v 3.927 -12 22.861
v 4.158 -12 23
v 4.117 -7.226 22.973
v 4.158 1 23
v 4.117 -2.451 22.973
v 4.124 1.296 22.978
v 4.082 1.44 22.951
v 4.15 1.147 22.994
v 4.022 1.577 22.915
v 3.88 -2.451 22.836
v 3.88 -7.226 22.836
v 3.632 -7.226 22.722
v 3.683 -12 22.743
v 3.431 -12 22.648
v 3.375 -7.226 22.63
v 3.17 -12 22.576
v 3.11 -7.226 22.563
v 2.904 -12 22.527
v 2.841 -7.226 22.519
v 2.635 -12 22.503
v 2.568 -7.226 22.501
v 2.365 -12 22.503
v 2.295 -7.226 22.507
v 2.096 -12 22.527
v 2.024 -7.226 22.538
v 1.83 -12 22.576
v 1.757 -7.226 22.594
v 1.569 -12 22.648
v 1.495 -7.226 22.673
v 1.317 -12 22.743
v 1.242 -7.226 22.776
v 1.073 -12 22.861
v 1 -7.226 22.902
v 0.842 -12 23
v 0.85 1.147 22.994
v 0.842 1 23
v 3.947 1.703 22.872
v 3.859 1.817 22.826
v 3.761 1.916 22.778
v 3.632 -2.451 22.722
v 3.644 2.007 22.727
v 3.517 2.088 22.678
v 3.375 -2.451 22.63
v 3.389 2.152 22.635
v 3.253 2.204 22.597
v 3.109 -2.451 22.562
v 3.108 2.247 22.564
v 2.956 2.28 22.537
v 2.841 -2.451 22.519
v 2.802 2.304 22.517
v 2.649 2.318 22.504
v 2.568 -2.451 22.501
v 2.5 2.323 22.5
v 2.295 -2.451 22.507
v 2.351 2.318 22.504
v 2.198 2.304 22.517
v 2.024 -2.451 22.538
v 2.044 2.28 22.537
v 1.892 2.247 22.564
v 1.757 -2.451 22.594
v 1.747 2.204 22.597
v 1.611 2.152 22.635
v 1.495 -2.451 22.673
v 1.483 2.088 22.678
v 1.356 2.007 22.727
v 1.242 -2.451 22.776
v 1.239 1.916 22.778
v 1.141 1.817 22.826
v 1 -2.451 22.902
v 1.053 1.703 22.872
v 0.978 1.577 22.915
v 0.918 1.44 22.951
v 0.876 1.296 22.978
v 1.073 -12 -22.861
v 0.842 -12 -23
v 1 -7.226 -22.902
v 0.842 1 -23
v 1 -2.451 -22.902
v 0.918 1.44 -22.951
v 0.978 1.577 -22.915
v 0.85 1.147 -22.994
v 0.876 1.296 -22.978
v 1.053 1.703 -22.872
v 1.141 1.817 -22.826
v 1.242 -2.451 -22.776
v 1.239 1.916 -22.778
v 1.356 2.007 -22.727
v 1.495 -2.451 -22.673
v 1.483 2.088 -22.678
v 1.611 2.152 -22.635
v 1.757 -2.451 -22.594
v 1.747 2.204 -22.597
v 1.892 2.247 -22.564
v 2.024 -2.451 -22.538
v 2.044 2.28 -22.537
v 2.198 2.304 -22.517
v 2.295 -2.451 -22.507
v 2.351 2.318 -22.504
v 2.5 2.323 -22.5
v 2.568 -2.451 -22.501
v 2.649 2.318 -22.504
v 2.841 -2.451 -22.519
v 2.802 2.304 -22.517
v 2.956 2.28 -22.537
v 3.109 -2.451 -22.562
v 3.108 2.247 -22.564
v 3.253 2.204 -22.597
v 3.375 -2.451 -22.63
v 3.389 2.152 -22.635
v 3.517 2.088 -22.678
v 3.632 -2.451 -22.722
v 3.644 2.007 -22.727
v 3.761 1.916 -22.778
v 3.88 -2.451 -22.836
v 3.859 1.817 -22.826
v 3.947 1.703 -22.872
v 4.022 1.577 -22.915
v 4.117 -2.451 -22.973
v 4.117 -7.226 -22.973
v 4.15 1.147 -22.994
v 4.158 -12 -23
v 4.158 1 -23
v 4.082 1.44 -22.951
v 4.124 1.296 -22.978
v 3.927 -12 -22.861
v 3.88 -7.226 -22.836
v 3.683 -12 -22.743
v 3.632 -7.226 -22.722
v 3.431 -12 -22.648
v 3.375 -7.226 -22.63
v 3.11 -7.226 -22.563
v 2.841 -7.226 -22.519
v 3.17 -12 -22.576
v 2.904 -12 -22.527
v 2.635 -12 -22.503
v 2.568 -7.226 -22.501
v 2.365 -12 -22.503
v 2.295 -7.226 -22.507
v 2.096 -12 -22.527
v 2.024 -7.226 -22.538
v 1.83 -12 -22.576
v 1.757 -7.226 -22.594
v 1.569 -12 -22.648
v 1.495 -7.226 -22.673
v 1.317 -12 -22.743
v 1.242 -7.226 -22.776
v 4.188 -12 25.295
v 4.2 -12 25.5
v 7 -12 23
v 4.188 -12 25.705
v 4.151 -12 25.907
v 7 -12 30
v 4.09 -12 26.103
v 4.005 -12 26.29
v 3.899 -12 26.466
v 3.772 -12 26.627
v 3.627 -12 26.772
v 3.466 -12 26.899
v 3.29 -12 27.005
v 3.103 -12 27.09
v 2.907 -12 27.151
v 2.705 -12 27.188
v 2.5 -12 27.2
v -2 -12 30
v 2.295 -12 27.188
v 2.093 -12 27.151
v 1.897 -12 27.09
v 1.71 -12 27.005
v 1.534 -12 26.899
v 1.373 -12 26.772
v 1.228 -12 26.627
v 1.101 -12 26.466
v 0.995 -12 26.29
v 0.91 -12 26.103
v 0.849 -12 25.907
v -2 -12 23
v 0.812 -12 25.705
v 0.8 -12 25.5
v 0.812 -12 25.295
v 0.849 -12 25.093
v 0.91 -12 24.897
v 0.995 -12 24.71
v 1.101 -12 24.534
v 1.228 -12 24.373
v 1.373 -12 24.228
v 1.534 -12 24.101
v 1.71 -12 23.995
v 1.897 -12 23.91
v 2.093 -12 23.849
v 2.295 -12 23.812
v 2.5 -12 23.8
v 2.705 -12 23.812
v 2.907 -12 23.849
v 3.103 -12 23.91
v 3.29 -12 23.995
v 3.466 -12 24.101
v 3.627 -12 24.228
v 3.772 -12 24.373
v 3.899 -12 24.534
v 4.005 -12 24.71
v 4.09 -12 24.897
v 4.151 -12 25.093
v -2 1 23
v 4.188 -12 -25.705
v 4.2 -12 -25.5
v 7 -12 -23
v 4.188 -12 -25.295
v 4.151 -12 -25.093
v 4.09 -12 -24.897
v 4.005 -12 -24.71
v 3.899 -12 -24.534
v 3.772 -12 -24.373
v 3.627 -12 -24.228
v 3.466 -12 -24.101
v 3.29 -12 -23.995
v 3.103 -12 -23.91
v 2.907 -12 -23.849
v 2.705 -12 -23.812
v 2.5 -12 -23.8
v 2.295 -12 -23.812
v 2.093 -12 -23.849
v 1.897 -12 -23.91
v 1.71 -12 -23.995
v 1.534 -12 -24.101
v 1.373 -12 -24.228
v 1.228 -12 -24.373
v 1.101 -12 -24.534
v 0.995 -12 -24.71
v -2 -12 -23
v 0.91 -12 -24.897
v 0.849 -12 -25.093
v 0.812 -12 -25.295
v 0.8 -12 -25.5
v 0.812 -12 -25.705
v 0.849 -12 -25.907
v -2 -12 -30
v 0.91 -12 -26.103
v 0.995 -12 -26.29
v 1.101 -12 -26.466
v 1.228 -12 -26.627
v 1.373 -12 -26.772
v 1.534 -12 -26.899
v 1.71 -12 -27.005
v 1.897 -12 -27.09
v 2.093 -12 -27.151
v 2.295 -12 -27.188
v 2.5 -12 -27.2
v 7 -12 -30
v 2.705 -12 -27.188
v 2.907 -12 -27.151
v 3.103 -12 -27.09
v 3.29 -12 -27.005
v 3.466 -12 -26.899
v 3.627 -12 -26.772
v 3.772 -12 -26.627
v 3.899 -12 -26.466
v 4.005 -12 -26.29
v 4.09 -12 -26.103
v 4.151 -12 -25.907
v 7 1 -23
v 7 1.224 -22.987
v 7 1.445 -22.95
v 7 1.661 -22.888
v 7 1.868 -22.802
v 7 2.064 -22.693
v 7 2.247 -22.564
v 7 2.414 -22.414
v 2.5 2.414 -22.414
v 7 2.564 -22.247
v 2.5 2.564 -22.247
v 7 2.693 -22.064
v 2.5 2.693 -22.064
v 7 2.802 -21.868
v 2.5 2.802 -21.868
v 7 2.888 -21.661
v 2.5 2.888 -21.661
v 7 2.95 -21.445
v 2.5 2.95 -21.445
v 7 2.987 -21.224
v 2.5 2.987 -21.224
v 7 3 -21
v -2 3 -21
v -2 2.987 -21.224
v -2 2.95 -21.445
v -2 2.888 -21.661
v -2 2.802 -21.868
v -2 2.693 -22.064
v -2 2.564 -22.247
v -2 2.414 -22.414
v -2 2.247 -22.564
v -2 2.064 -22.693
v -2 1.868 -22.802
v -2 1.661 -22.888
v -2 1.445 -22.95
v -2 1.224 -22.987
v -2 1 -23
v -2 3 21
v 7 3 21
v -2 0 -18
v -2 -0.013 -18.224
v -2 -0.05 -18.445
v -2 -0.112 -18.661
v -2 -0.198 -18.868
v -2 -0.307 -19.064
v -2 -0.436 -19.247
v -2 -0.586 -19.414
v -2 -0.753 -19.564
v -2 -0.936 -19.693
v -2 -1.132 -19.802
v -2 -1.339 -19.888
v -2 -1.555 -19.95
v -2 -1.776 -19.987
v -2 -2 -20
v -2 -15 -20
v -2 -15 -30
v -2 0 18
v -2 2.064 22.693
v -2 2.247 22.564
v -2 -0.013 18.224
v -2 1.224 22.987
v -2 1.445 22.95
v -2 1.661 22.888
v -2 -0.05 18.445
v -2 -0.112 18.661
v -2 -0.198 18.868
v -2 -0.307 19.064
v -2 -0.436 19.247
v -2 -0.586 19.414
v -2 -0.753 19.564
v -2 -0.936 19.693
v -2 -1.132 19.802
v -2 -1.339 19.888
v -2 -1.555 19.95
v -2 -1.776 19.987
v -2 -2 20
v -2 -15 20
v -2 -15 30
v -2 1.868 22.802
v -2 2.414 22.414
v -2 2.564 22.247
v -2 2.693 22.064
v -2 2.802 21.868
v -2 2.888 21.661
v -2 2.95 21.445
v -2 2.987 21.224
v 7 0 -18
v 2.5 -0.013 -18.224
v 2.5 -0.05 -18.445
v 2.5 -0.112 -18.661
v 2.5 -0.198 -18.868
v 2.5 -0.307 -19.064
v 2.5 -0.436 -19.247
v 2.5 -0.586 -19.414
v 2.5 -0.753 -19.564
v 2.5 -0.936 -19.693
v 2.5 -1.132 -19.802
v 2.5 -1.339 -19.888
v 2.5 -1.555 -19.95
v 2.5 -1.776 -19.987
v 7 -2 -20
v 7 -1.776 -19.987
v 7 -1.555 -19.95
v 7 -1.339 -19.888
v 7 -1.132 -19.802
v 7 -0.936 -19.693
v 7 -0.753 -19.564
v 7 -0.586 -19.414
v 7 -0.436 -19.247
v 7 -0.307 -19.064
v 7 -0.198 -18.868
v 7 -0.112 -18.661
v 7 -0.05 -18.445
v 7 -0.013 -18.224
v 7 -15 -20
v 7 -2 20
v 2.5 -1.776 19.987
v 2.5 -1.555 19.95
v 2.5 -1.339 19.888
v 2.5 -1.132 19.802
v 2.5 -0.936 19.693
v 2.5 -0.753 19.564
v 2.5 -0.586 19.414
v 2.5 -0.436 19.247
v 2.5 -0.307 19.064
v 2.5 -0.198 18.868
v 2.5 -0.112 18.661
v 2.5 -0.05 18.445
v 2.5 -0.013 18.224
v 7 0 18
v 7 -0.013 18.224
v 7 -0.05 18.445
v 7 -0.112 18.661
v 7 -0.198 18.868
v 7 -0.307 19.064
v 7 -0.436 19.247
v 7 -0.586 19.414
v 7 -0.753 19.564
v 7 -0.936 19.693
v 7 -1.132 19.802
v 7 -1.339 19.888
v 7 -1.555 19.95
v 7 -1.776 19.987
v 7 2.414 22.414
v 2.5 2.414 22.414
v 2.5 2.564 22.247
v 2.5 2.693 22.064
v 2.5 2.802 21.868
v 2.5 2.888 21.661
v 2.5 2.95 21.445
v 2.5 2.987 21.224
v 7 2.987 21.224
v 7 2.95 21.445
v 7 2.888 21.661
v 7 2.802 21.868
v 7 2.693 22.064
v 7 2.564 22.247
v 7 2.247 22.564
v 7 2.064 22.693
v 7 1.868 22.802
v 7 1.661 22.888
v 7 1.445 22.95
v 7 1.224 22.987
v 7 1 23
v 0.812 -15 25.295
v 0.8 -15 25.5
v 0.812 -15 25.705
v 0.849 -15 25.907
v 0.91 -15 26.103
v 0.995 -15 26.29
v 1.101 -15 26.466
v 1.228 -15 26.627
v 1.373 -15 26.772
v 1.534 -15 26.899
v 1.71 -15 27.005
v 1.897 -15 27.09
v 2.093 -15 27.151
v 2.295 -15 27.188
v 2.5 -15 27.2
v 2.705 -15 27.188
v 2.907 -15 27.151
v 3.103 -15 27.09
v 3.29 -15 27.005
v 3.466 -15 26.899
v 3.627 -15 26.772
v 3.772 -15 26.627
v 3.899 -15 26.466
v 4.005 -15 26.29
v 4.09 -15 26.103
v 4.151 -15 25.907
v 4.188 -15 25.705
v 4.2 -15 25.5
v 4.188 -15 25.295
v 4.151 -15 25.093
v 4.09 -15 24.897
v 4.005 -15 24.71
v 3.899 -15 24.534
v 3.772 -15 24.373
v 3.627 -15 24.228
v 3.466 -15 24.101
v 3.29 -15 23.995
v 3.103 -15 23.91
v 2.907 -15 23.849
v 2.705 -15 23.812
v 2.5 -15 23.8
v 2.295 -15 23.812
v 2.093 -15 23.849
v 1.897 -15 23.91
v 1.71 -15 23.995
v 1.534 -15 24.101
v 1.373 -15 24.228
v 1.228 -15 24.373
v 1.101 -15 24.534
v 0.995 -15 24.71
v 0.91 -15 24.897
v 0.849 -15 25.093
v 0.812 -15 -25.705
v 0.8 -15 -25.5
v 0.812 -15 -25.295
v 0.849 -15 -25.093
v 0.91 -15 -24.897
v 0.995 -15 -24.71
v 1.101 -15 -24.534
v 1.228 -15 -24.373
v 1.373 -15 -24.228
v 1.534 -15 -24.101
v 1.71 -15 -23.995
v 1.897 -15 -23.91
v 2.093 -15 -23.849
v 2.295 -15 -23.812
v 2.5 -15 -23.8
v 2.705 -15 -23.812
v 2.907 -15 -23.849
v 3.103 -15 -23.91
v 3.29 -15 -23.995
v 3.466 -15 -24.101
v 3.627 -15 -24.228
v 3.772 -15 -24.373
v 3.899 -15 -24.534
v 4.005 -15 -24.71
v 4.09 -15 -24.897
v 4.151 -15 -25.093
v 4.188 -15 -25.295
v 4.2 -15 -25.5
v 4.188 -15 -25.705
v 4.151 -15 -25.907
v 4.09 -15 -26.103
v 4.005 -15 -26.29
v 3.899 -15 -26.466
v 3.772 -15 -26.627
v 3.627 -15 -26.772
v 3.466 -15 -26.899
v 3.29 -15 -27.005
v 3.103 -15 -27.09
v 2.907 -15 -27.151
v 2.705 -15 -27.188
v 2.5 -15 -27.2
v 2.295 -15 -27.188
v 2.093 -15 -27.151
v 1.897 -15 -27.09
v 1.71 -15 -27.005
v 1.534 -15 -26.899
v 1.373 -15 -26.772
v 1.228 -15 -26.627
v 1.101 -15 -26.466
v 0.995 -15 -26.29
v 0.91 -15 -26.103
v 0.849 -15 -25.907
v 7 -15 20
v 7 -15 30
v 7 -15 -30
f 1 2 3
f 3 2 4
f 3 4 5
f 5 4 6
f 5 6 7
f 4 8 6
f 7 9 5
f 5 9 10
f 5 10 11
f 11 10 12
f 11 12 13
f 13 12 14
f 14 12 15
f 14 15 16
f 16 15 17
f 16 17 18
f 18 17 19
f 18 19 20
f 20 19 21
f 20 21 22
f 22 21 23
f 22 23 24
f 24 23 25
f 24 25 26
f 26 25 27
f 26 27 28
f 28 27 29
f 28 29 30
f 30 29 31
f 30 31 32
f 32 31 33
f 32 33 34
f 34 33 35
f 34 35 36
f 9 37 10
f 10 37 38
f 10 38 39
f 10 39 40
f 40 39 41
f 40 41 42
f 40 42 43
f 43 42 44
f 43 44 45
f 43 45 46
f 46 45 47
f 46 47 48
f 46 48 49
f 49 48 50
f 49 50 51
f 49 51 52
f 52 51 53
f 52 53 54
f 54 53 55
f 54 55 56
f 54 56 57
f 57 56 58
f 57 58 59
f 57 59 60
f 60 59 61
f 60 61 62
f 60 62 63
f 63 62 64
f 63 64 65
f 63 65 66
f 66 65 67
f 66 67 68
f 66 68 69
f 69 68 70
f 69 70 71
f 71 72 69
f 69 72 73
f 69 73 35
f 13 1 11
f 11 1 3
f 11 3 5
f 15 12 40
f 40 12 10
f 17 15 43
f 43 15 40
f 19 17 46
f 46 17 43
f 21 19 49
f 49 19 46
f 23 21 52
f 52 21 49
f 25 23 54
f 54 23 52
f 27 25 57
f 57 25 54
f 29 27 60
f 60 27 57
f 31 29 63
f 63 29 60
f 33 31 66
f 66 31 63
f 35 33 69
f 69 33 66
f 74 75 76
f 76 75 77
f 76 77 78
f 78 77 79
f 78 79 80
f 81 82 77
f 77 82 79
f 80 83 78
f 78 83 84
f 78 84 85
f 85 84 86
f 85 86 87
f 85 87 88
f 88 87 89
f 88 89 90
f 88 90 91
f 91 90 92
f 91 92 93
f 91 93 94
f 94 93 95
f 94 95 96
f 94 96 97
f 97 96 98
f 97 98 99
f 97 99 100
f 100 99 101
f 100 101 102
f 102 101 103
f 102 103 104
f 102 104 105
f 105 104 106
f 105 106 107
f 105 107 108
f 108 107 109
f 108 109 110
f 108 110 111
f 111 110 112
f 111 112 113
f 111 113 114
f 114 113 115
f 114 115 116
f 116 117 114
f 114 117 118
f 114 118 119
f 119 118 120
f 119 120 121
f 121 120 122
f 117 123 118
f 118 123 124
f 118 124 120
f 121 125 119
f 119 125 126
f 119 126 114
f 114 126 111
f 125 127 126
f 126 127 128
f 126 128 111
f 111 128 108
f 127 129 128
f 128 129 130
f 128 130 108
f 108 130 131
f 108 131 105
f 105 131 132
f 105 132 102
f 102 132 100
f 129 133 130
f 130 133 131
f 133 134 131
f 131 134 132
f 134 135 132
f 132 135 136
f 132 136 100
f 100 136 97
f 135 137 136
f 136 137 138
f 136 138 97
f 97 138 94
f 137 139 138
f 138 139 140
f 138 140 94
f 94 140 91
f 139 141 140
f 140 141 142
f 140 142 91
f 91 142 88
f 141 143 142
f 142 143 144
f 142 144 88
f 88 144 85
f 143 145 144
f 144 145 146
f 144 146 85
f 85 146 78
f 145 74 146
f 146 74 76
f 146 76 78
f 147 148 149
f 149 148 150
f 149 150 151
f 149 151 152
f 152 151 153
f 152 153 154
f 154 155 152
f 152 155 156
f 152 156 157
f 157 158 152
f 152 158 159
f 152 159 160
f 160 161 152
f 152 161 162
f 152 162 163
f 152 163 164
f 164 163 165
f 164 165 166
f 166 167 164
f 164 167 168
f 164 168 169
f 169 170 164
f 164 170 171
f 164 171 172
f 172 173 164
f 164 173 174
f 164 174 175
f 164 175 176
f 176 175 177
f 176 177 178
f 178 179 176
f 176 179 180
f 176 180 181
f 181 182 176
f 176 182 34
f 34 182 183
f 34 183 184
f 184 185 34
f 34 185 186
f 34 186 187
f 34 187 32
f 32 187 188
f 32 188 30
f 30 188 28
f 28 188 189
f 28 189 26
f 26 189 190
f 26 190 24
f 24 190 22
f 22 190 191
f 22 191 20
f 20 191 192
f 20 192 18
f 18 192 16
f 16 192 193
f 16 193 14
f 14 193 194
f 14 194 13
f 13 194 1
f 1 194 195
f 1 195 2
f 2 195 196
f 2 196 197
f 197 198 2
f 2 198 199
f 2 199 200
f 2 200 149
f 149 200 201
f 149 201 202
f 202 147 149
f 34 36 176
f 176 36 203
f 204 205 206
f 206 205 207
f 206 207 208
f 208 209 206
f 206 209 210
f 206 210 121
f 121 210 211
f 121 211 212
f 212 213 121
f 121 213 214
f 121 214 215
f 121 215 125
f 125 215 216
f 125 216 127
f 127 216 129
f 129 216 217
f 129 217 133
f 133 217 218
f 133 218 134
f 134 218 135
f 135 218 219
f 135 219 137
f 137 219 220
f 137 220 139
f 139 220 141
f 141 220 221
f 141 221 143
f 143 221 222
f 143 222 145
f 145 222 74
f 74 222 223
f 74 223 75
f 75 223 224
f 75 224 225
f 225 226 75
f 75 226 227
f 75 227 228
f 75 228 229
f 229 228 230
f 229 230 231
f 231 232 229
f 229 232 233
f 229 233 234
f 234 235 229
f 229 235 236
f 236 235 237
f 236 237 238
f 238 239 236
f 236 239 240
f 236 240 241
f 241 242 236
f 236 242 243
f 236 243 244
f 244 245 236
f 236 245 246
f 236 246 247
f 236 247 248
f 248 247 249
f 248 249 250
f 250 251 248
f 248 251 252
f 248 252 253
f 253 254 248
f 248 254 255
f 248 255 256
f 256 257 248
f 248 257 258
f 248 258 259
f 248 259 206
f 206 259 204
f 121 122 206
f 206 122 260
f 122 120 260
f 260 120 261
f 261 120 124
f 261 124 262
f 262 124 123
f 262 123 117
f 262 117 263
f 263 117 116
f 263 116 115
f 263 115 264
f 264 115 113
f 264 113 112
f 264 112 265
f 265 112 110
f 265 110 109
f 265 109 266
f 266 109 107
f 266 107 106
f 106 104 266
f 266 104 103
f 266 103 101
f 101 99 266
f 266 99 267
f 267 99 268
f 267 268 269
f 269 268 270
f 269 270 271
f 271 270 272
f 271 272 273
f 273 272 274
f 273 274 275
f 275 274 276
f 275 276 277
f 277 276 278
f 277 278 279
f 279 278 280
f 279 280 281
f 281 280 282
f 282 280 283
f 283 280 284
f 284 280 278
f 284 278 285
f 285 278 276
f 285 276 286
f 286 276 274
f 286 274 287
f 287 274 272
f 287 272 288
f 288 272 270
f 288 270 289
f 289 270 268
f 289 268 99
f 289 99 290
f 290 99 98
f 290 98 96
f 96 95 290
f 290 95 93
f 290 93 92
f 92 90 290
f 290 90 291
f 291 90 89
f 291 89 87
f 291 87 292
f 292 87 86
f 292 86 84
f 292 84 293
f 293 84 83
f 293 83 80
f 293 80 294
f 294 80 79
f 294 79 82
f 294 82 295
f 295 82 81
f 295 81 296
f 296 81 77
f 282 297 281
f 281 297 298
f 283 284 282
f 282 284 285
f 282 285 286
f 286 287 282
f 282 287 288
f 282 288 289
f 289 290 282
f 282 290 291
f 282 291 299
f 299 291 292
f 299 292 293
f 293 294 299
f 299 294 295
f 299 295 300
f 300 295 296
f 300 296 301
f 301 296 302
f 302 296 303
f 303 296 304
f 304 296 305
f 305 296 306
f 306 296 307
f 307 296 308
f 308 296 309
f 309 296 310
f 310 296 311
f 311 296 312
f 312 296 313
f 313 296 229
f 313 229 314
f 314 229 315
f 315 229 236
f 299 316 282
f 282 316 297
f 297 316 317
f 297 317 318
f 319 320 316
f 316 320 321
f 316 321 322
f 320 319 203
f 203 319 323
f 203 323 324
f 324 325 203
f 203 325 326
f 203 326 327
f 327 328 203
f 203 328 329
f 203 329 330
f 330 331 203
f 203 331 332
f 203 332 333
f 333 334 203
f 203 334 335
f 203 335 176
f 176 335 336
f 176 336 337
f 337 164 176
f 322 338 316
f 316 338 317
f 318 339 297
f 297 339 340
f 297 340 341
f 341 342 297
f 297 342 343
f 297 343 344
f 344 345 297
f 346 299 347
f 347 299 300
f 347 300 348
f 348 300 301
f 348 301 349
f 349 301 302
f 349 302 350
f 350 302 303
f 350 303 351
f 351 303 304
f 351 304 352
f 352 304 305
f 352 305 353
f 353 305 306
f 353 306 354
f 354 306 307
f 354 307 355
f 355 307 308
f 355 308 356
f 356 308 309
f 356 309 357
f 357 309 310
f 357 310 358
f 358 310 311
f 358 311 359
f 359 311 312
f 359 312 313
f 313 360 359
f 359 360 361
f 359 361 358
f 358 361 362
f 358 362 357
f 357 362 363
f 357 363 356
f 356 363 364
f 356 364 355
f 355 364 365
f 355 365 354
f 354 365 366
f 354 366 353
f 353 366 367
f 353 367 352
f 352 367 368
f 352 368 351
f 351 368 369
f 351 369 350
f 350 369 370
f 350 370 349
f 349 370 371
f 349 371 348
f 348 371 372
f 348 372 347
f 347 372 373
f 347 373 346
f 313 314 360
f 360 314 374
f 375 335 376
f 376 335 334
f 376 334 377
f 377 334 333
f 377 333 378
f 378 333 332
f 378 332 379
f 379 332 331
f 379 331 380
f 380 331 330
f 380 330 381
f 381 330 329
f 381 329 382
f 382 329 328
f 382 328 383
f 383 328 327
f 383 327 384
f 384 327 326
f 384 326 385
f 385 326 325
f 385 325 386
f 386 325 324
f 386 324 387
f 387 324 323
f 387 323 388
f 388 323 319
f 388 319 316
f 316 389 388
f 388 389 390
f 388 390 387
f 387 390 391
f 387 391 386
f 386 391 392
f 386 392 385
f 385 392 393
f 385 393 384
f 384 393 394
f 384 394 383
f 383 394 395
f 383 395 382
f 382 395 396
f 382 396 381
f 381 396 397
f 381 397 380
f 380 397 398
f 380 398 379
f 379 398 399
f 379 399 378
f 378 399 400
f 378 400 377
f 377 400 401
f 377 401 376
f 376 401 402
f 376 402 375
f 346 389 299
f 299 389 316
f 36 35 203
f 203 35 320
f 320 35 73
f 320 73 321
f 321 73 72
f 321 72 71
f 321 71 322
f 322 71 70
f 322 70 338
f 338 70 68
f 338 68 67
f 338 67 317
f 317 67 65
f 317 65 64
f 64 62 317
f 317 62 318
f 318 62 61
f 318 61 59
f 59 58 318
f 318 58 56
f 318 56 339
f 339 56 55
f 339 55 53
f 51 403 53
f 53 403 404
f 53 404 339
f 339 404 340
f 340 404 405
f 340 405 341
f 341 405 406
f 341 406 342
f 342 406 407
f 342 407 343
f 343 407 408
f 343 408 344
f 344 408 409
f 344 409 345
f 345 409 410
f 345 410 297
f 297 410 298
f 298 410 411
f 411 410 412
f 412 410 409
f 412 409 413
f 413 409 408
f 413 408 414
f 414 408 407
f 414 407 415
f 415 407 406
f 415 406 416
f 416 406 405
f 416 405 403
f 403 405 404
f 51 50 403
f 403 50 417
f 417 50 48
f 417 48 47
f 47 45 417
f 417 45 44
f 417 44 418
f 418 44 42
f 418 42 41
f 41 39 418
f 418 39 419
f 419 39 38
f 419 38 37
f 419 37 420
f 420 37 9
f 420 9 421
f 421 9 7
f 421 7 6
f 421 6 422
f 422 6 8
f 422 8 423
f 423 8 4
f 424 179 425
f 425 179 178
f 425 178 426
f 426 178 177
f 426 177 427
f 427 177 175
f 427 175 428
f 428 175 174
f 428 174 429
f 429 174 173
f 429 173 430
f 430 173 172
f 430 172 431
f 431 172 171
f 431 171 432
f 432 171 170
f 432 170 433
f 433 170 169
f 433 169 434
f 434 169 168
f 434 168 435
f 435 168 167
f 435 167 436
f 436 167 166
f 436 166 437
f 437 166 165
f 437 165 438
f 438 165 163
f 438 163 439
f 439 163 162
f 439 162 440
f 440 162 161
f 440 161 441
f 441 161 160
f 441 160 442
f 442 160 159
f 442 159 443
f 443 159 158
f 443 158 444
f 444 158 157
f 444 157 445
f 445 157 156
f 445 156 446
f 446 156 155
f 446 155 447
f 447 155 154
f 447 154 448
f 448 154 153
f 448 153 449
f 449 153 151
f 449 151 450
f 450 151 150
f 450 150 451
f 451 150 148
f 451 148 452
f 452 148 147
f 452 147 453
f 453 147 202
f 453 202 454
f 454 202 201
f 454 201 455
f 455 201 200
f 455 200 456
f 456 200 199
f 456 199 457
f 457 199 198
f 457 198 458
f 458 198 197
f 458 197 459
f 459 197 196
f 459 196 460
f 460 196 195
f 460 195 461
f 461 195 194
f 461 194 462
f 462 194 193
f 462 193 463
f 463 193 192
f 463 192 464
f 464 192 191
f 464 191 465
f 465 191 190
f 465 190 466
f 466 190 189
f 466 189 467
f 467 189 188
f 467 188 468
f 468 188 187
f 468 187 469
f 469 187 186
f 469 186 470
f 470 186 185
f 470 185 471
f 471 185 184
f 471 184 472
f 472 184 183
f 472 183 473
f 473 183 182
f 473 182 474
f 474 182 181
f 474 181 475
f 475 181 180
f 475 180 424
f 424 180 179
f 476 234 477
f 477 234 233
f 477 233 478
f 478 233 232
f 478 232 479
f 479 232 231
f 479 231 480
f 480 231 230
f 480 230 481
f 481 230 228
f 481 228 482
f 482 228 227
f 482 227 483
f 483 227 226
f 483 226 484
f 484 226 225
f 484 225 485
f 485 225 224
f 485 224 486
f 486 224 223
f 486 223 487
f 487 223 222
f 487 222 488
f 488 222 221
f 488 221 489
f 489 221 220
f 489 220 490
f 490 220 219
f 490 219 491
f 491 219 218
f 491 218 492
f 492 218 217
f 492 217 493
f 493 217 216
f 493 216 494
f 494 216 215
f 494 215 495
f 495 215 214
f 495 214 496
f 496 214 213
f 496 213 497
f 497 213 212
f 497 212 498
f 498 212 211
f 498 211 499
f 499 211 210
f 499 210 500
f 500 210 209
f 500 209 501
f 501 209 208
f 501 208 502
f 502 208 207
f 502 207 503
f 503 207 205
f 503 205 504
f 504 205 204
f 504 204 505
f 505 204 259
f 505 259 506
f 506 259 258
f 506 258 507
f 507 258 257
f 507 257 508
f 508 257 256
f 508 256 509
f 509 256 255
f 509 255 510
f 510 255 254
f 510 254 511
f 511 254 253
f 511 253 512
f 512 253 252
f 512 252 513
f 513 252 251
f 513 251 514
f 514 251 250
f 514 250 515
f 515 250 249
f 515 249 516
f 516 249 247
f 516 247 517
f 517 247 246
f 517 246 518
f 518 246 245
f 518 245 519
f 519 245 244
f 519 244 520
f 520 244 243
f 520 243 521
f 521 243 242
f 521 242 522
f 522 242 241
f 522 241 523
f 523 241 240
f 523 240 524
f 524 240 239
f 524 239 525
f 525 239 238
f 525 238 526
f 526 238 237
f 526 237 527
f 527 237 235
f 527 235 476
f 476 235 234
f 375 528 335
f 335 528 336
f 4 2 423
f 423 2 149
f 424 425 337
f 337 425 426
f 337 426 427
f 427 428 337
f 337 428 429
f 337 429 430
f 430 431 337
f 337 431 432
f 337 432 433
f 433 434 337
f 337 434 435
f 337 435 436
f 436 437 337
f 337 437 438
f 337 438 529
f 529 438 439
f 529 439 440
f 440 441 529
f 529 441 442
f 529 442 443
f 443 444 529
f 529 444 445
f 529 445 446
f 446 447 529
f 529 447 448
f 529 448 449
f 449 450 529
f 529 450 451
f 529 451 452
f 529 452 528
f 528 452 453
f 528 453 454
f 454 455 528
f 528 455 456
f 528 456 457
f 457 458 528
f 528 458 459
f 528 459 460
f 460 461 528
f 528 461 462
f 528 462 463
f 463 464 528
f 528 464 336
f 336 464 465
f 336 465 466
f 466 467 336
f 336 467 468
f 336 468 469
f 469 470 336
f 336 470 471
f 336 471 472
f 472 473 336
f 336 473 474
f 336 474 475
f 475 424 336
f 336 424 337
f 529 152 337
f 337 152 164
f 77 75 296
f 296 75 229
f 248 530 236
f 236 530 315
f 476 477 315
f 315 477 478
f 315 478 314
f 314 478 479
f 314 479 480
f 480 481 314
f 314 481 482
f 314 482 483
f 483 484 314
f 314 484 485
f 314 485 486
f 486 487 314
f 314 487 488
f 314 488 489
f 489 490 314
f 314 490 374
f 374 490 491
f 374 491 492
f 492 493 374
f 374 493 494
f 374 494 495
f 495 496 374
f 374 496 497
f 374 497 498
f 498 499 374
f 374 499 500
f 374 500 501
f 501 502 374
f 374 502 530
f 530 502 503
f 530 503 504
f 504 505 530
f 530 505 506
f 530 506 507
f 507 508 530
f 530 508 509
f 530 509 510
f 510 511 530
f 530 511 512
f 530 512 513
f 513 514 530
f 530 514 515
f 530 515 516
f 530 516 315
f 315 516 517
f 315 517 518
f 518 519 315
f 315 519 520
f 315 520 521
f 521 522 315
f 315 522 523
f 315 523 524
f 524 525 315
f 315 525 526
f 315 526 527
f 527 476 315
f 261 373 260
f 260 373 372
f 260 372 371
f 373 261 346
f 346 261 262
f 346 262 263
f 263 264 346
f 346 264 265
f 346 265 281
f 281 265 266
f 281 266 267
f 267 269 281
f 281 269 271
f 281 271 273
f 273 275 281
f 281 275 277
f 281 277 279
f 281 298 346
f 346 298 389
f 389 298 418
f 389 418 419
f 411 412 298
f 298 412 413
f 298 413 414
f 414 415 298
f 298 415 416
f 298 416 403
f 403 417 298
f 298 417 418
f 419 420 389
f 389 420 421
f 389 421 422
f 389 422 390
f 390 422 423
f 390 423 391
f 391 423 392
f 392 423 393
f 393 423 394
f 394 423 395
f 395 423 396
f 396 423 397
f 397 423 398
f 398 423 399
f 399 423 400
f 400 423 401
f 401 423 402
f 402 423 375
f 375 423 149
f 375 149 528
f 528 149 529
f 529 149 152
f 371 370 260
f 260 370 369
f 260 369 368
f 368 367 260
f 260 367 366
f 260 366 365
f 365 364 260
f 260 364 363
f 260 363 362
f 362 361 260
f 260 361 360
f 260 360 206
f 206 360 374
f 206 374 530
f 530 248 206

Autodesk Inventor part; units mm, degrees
ref_plane "YZ Plane" through (0, 0, 0) normal (1, 0, 0) x (0, 1, 0)
ref_plane "XZ Plane" through (0, 0, 0) normal (0, 1, 0) x (-1, 0, 0)
ref_plane "XY Plane" through (0, 0, 0) normal (0, 0, 1) x (1, 0, 0)
sketch "Sketch1" plane through (0, 0, 0) normal (1, 0, 0) x (0, 1, 0)
  line L0 (0, 0) -> (0, 20)
  line L1 (0, 20) -> (-15, 20)
  line L2 (0, 0) -> (3, 0)
  line L3 (3, 0) -> (3, 23)
  line L4 (3, 23) -> (-12, 23)
  line L5 (-12, 23) -> (-12, 28)
  line L6 (-12, 28) -> (-15, 28)
  line L7 (-15, 28) -> (-15, 20)
  line L8 (3.6548, 0) -> (-1.246, 0)
  line L9 (0, 0) -> (0, -20)
  line L10 (0, -20) -> (-15, -20)
  line L11 (3, 0) -> (3, -23)
  line L12 (3, -23) -> (-12, -23)
  line L13 (-12, -23) -> (-12, -28)
  line L14 (-15, -28) -> (-15, -20)
  line L15 (-12, -28) -> (-15, -28)
  line L16 (-12, 28) -> (-12, 30)
  line L17 (-12, 30) -> (-15, 30)
  line L18 (-15, 30) -> (-15, 28)
  line L19 (-15, -28) -> (-15, -30)
  line L20 (-15, -30) -> (-12, -30)
  line L21 (-12, -30) -> (-12, -28)
  dimension "d0" = 20
  dimension "d1" = 15
  dimension "d2" = 3
  dimension "d3" = 23
  dimension "d4" = 15
  dimension "d5" = 5
  dimension "d22" = 2
  dimension "d23" = 2
extrude "Extrusion1" add sketch "Sketch1" along normal blind 7 and the other way blind 2
sketch "Sketch2" plane through (0, -12, 28) normal (0, 1, 0) x (1, 0, 0)
  line L0 (0, 0) -> (-2, 2.1)
  line L1 (-2, -2) -> (-2, 5) projected
  line L2 (-2, 58) -> (-2, 48) projected
  line L3 (0, 56) -> (-2, 54.5)
  point P0 (0, 28)
  point P1 (2.5, 2.5)
  point P2 (2.5, 53.5)
  dimension "d8" = 2.9
  dimension "d9" = 2.5
hole "Hole1" at (2.5, -12, 25.5) at (2.5, -12, -25.5) direction (0, -1, 0) diameter 3.4 end through all clearance for "Countersunk Flat Head Screw ISO 2009/7046" size "M3" standard "ISO"
sketch "Sketch3" plane through (0, -12, 28) normal (0, 1, 0) x (1, 0, 0)
  circle A0 centre (2.5, 2.5) radius 1.7 projected
  circle A1 centre (2.5, 2.5) radius 3
  circle A2 centre (2.5, 53.5) radius 1.7 projected
  circle A3 centre (2.5, 53.5) radius 3
  point P0 (0, 28)
  dimension "d17" = 6
  dimension "d18" = 6
fillet "Fillet1" radius 2 4 edges at (2.5, 3, 23) (2.5, 0, 20) (2.5, 0, -20) (2.5, 3, -23)
extrude "Extrusion2" cut sketch "Sketch3" along normal blind 20
properties part number "esc-bracket"
